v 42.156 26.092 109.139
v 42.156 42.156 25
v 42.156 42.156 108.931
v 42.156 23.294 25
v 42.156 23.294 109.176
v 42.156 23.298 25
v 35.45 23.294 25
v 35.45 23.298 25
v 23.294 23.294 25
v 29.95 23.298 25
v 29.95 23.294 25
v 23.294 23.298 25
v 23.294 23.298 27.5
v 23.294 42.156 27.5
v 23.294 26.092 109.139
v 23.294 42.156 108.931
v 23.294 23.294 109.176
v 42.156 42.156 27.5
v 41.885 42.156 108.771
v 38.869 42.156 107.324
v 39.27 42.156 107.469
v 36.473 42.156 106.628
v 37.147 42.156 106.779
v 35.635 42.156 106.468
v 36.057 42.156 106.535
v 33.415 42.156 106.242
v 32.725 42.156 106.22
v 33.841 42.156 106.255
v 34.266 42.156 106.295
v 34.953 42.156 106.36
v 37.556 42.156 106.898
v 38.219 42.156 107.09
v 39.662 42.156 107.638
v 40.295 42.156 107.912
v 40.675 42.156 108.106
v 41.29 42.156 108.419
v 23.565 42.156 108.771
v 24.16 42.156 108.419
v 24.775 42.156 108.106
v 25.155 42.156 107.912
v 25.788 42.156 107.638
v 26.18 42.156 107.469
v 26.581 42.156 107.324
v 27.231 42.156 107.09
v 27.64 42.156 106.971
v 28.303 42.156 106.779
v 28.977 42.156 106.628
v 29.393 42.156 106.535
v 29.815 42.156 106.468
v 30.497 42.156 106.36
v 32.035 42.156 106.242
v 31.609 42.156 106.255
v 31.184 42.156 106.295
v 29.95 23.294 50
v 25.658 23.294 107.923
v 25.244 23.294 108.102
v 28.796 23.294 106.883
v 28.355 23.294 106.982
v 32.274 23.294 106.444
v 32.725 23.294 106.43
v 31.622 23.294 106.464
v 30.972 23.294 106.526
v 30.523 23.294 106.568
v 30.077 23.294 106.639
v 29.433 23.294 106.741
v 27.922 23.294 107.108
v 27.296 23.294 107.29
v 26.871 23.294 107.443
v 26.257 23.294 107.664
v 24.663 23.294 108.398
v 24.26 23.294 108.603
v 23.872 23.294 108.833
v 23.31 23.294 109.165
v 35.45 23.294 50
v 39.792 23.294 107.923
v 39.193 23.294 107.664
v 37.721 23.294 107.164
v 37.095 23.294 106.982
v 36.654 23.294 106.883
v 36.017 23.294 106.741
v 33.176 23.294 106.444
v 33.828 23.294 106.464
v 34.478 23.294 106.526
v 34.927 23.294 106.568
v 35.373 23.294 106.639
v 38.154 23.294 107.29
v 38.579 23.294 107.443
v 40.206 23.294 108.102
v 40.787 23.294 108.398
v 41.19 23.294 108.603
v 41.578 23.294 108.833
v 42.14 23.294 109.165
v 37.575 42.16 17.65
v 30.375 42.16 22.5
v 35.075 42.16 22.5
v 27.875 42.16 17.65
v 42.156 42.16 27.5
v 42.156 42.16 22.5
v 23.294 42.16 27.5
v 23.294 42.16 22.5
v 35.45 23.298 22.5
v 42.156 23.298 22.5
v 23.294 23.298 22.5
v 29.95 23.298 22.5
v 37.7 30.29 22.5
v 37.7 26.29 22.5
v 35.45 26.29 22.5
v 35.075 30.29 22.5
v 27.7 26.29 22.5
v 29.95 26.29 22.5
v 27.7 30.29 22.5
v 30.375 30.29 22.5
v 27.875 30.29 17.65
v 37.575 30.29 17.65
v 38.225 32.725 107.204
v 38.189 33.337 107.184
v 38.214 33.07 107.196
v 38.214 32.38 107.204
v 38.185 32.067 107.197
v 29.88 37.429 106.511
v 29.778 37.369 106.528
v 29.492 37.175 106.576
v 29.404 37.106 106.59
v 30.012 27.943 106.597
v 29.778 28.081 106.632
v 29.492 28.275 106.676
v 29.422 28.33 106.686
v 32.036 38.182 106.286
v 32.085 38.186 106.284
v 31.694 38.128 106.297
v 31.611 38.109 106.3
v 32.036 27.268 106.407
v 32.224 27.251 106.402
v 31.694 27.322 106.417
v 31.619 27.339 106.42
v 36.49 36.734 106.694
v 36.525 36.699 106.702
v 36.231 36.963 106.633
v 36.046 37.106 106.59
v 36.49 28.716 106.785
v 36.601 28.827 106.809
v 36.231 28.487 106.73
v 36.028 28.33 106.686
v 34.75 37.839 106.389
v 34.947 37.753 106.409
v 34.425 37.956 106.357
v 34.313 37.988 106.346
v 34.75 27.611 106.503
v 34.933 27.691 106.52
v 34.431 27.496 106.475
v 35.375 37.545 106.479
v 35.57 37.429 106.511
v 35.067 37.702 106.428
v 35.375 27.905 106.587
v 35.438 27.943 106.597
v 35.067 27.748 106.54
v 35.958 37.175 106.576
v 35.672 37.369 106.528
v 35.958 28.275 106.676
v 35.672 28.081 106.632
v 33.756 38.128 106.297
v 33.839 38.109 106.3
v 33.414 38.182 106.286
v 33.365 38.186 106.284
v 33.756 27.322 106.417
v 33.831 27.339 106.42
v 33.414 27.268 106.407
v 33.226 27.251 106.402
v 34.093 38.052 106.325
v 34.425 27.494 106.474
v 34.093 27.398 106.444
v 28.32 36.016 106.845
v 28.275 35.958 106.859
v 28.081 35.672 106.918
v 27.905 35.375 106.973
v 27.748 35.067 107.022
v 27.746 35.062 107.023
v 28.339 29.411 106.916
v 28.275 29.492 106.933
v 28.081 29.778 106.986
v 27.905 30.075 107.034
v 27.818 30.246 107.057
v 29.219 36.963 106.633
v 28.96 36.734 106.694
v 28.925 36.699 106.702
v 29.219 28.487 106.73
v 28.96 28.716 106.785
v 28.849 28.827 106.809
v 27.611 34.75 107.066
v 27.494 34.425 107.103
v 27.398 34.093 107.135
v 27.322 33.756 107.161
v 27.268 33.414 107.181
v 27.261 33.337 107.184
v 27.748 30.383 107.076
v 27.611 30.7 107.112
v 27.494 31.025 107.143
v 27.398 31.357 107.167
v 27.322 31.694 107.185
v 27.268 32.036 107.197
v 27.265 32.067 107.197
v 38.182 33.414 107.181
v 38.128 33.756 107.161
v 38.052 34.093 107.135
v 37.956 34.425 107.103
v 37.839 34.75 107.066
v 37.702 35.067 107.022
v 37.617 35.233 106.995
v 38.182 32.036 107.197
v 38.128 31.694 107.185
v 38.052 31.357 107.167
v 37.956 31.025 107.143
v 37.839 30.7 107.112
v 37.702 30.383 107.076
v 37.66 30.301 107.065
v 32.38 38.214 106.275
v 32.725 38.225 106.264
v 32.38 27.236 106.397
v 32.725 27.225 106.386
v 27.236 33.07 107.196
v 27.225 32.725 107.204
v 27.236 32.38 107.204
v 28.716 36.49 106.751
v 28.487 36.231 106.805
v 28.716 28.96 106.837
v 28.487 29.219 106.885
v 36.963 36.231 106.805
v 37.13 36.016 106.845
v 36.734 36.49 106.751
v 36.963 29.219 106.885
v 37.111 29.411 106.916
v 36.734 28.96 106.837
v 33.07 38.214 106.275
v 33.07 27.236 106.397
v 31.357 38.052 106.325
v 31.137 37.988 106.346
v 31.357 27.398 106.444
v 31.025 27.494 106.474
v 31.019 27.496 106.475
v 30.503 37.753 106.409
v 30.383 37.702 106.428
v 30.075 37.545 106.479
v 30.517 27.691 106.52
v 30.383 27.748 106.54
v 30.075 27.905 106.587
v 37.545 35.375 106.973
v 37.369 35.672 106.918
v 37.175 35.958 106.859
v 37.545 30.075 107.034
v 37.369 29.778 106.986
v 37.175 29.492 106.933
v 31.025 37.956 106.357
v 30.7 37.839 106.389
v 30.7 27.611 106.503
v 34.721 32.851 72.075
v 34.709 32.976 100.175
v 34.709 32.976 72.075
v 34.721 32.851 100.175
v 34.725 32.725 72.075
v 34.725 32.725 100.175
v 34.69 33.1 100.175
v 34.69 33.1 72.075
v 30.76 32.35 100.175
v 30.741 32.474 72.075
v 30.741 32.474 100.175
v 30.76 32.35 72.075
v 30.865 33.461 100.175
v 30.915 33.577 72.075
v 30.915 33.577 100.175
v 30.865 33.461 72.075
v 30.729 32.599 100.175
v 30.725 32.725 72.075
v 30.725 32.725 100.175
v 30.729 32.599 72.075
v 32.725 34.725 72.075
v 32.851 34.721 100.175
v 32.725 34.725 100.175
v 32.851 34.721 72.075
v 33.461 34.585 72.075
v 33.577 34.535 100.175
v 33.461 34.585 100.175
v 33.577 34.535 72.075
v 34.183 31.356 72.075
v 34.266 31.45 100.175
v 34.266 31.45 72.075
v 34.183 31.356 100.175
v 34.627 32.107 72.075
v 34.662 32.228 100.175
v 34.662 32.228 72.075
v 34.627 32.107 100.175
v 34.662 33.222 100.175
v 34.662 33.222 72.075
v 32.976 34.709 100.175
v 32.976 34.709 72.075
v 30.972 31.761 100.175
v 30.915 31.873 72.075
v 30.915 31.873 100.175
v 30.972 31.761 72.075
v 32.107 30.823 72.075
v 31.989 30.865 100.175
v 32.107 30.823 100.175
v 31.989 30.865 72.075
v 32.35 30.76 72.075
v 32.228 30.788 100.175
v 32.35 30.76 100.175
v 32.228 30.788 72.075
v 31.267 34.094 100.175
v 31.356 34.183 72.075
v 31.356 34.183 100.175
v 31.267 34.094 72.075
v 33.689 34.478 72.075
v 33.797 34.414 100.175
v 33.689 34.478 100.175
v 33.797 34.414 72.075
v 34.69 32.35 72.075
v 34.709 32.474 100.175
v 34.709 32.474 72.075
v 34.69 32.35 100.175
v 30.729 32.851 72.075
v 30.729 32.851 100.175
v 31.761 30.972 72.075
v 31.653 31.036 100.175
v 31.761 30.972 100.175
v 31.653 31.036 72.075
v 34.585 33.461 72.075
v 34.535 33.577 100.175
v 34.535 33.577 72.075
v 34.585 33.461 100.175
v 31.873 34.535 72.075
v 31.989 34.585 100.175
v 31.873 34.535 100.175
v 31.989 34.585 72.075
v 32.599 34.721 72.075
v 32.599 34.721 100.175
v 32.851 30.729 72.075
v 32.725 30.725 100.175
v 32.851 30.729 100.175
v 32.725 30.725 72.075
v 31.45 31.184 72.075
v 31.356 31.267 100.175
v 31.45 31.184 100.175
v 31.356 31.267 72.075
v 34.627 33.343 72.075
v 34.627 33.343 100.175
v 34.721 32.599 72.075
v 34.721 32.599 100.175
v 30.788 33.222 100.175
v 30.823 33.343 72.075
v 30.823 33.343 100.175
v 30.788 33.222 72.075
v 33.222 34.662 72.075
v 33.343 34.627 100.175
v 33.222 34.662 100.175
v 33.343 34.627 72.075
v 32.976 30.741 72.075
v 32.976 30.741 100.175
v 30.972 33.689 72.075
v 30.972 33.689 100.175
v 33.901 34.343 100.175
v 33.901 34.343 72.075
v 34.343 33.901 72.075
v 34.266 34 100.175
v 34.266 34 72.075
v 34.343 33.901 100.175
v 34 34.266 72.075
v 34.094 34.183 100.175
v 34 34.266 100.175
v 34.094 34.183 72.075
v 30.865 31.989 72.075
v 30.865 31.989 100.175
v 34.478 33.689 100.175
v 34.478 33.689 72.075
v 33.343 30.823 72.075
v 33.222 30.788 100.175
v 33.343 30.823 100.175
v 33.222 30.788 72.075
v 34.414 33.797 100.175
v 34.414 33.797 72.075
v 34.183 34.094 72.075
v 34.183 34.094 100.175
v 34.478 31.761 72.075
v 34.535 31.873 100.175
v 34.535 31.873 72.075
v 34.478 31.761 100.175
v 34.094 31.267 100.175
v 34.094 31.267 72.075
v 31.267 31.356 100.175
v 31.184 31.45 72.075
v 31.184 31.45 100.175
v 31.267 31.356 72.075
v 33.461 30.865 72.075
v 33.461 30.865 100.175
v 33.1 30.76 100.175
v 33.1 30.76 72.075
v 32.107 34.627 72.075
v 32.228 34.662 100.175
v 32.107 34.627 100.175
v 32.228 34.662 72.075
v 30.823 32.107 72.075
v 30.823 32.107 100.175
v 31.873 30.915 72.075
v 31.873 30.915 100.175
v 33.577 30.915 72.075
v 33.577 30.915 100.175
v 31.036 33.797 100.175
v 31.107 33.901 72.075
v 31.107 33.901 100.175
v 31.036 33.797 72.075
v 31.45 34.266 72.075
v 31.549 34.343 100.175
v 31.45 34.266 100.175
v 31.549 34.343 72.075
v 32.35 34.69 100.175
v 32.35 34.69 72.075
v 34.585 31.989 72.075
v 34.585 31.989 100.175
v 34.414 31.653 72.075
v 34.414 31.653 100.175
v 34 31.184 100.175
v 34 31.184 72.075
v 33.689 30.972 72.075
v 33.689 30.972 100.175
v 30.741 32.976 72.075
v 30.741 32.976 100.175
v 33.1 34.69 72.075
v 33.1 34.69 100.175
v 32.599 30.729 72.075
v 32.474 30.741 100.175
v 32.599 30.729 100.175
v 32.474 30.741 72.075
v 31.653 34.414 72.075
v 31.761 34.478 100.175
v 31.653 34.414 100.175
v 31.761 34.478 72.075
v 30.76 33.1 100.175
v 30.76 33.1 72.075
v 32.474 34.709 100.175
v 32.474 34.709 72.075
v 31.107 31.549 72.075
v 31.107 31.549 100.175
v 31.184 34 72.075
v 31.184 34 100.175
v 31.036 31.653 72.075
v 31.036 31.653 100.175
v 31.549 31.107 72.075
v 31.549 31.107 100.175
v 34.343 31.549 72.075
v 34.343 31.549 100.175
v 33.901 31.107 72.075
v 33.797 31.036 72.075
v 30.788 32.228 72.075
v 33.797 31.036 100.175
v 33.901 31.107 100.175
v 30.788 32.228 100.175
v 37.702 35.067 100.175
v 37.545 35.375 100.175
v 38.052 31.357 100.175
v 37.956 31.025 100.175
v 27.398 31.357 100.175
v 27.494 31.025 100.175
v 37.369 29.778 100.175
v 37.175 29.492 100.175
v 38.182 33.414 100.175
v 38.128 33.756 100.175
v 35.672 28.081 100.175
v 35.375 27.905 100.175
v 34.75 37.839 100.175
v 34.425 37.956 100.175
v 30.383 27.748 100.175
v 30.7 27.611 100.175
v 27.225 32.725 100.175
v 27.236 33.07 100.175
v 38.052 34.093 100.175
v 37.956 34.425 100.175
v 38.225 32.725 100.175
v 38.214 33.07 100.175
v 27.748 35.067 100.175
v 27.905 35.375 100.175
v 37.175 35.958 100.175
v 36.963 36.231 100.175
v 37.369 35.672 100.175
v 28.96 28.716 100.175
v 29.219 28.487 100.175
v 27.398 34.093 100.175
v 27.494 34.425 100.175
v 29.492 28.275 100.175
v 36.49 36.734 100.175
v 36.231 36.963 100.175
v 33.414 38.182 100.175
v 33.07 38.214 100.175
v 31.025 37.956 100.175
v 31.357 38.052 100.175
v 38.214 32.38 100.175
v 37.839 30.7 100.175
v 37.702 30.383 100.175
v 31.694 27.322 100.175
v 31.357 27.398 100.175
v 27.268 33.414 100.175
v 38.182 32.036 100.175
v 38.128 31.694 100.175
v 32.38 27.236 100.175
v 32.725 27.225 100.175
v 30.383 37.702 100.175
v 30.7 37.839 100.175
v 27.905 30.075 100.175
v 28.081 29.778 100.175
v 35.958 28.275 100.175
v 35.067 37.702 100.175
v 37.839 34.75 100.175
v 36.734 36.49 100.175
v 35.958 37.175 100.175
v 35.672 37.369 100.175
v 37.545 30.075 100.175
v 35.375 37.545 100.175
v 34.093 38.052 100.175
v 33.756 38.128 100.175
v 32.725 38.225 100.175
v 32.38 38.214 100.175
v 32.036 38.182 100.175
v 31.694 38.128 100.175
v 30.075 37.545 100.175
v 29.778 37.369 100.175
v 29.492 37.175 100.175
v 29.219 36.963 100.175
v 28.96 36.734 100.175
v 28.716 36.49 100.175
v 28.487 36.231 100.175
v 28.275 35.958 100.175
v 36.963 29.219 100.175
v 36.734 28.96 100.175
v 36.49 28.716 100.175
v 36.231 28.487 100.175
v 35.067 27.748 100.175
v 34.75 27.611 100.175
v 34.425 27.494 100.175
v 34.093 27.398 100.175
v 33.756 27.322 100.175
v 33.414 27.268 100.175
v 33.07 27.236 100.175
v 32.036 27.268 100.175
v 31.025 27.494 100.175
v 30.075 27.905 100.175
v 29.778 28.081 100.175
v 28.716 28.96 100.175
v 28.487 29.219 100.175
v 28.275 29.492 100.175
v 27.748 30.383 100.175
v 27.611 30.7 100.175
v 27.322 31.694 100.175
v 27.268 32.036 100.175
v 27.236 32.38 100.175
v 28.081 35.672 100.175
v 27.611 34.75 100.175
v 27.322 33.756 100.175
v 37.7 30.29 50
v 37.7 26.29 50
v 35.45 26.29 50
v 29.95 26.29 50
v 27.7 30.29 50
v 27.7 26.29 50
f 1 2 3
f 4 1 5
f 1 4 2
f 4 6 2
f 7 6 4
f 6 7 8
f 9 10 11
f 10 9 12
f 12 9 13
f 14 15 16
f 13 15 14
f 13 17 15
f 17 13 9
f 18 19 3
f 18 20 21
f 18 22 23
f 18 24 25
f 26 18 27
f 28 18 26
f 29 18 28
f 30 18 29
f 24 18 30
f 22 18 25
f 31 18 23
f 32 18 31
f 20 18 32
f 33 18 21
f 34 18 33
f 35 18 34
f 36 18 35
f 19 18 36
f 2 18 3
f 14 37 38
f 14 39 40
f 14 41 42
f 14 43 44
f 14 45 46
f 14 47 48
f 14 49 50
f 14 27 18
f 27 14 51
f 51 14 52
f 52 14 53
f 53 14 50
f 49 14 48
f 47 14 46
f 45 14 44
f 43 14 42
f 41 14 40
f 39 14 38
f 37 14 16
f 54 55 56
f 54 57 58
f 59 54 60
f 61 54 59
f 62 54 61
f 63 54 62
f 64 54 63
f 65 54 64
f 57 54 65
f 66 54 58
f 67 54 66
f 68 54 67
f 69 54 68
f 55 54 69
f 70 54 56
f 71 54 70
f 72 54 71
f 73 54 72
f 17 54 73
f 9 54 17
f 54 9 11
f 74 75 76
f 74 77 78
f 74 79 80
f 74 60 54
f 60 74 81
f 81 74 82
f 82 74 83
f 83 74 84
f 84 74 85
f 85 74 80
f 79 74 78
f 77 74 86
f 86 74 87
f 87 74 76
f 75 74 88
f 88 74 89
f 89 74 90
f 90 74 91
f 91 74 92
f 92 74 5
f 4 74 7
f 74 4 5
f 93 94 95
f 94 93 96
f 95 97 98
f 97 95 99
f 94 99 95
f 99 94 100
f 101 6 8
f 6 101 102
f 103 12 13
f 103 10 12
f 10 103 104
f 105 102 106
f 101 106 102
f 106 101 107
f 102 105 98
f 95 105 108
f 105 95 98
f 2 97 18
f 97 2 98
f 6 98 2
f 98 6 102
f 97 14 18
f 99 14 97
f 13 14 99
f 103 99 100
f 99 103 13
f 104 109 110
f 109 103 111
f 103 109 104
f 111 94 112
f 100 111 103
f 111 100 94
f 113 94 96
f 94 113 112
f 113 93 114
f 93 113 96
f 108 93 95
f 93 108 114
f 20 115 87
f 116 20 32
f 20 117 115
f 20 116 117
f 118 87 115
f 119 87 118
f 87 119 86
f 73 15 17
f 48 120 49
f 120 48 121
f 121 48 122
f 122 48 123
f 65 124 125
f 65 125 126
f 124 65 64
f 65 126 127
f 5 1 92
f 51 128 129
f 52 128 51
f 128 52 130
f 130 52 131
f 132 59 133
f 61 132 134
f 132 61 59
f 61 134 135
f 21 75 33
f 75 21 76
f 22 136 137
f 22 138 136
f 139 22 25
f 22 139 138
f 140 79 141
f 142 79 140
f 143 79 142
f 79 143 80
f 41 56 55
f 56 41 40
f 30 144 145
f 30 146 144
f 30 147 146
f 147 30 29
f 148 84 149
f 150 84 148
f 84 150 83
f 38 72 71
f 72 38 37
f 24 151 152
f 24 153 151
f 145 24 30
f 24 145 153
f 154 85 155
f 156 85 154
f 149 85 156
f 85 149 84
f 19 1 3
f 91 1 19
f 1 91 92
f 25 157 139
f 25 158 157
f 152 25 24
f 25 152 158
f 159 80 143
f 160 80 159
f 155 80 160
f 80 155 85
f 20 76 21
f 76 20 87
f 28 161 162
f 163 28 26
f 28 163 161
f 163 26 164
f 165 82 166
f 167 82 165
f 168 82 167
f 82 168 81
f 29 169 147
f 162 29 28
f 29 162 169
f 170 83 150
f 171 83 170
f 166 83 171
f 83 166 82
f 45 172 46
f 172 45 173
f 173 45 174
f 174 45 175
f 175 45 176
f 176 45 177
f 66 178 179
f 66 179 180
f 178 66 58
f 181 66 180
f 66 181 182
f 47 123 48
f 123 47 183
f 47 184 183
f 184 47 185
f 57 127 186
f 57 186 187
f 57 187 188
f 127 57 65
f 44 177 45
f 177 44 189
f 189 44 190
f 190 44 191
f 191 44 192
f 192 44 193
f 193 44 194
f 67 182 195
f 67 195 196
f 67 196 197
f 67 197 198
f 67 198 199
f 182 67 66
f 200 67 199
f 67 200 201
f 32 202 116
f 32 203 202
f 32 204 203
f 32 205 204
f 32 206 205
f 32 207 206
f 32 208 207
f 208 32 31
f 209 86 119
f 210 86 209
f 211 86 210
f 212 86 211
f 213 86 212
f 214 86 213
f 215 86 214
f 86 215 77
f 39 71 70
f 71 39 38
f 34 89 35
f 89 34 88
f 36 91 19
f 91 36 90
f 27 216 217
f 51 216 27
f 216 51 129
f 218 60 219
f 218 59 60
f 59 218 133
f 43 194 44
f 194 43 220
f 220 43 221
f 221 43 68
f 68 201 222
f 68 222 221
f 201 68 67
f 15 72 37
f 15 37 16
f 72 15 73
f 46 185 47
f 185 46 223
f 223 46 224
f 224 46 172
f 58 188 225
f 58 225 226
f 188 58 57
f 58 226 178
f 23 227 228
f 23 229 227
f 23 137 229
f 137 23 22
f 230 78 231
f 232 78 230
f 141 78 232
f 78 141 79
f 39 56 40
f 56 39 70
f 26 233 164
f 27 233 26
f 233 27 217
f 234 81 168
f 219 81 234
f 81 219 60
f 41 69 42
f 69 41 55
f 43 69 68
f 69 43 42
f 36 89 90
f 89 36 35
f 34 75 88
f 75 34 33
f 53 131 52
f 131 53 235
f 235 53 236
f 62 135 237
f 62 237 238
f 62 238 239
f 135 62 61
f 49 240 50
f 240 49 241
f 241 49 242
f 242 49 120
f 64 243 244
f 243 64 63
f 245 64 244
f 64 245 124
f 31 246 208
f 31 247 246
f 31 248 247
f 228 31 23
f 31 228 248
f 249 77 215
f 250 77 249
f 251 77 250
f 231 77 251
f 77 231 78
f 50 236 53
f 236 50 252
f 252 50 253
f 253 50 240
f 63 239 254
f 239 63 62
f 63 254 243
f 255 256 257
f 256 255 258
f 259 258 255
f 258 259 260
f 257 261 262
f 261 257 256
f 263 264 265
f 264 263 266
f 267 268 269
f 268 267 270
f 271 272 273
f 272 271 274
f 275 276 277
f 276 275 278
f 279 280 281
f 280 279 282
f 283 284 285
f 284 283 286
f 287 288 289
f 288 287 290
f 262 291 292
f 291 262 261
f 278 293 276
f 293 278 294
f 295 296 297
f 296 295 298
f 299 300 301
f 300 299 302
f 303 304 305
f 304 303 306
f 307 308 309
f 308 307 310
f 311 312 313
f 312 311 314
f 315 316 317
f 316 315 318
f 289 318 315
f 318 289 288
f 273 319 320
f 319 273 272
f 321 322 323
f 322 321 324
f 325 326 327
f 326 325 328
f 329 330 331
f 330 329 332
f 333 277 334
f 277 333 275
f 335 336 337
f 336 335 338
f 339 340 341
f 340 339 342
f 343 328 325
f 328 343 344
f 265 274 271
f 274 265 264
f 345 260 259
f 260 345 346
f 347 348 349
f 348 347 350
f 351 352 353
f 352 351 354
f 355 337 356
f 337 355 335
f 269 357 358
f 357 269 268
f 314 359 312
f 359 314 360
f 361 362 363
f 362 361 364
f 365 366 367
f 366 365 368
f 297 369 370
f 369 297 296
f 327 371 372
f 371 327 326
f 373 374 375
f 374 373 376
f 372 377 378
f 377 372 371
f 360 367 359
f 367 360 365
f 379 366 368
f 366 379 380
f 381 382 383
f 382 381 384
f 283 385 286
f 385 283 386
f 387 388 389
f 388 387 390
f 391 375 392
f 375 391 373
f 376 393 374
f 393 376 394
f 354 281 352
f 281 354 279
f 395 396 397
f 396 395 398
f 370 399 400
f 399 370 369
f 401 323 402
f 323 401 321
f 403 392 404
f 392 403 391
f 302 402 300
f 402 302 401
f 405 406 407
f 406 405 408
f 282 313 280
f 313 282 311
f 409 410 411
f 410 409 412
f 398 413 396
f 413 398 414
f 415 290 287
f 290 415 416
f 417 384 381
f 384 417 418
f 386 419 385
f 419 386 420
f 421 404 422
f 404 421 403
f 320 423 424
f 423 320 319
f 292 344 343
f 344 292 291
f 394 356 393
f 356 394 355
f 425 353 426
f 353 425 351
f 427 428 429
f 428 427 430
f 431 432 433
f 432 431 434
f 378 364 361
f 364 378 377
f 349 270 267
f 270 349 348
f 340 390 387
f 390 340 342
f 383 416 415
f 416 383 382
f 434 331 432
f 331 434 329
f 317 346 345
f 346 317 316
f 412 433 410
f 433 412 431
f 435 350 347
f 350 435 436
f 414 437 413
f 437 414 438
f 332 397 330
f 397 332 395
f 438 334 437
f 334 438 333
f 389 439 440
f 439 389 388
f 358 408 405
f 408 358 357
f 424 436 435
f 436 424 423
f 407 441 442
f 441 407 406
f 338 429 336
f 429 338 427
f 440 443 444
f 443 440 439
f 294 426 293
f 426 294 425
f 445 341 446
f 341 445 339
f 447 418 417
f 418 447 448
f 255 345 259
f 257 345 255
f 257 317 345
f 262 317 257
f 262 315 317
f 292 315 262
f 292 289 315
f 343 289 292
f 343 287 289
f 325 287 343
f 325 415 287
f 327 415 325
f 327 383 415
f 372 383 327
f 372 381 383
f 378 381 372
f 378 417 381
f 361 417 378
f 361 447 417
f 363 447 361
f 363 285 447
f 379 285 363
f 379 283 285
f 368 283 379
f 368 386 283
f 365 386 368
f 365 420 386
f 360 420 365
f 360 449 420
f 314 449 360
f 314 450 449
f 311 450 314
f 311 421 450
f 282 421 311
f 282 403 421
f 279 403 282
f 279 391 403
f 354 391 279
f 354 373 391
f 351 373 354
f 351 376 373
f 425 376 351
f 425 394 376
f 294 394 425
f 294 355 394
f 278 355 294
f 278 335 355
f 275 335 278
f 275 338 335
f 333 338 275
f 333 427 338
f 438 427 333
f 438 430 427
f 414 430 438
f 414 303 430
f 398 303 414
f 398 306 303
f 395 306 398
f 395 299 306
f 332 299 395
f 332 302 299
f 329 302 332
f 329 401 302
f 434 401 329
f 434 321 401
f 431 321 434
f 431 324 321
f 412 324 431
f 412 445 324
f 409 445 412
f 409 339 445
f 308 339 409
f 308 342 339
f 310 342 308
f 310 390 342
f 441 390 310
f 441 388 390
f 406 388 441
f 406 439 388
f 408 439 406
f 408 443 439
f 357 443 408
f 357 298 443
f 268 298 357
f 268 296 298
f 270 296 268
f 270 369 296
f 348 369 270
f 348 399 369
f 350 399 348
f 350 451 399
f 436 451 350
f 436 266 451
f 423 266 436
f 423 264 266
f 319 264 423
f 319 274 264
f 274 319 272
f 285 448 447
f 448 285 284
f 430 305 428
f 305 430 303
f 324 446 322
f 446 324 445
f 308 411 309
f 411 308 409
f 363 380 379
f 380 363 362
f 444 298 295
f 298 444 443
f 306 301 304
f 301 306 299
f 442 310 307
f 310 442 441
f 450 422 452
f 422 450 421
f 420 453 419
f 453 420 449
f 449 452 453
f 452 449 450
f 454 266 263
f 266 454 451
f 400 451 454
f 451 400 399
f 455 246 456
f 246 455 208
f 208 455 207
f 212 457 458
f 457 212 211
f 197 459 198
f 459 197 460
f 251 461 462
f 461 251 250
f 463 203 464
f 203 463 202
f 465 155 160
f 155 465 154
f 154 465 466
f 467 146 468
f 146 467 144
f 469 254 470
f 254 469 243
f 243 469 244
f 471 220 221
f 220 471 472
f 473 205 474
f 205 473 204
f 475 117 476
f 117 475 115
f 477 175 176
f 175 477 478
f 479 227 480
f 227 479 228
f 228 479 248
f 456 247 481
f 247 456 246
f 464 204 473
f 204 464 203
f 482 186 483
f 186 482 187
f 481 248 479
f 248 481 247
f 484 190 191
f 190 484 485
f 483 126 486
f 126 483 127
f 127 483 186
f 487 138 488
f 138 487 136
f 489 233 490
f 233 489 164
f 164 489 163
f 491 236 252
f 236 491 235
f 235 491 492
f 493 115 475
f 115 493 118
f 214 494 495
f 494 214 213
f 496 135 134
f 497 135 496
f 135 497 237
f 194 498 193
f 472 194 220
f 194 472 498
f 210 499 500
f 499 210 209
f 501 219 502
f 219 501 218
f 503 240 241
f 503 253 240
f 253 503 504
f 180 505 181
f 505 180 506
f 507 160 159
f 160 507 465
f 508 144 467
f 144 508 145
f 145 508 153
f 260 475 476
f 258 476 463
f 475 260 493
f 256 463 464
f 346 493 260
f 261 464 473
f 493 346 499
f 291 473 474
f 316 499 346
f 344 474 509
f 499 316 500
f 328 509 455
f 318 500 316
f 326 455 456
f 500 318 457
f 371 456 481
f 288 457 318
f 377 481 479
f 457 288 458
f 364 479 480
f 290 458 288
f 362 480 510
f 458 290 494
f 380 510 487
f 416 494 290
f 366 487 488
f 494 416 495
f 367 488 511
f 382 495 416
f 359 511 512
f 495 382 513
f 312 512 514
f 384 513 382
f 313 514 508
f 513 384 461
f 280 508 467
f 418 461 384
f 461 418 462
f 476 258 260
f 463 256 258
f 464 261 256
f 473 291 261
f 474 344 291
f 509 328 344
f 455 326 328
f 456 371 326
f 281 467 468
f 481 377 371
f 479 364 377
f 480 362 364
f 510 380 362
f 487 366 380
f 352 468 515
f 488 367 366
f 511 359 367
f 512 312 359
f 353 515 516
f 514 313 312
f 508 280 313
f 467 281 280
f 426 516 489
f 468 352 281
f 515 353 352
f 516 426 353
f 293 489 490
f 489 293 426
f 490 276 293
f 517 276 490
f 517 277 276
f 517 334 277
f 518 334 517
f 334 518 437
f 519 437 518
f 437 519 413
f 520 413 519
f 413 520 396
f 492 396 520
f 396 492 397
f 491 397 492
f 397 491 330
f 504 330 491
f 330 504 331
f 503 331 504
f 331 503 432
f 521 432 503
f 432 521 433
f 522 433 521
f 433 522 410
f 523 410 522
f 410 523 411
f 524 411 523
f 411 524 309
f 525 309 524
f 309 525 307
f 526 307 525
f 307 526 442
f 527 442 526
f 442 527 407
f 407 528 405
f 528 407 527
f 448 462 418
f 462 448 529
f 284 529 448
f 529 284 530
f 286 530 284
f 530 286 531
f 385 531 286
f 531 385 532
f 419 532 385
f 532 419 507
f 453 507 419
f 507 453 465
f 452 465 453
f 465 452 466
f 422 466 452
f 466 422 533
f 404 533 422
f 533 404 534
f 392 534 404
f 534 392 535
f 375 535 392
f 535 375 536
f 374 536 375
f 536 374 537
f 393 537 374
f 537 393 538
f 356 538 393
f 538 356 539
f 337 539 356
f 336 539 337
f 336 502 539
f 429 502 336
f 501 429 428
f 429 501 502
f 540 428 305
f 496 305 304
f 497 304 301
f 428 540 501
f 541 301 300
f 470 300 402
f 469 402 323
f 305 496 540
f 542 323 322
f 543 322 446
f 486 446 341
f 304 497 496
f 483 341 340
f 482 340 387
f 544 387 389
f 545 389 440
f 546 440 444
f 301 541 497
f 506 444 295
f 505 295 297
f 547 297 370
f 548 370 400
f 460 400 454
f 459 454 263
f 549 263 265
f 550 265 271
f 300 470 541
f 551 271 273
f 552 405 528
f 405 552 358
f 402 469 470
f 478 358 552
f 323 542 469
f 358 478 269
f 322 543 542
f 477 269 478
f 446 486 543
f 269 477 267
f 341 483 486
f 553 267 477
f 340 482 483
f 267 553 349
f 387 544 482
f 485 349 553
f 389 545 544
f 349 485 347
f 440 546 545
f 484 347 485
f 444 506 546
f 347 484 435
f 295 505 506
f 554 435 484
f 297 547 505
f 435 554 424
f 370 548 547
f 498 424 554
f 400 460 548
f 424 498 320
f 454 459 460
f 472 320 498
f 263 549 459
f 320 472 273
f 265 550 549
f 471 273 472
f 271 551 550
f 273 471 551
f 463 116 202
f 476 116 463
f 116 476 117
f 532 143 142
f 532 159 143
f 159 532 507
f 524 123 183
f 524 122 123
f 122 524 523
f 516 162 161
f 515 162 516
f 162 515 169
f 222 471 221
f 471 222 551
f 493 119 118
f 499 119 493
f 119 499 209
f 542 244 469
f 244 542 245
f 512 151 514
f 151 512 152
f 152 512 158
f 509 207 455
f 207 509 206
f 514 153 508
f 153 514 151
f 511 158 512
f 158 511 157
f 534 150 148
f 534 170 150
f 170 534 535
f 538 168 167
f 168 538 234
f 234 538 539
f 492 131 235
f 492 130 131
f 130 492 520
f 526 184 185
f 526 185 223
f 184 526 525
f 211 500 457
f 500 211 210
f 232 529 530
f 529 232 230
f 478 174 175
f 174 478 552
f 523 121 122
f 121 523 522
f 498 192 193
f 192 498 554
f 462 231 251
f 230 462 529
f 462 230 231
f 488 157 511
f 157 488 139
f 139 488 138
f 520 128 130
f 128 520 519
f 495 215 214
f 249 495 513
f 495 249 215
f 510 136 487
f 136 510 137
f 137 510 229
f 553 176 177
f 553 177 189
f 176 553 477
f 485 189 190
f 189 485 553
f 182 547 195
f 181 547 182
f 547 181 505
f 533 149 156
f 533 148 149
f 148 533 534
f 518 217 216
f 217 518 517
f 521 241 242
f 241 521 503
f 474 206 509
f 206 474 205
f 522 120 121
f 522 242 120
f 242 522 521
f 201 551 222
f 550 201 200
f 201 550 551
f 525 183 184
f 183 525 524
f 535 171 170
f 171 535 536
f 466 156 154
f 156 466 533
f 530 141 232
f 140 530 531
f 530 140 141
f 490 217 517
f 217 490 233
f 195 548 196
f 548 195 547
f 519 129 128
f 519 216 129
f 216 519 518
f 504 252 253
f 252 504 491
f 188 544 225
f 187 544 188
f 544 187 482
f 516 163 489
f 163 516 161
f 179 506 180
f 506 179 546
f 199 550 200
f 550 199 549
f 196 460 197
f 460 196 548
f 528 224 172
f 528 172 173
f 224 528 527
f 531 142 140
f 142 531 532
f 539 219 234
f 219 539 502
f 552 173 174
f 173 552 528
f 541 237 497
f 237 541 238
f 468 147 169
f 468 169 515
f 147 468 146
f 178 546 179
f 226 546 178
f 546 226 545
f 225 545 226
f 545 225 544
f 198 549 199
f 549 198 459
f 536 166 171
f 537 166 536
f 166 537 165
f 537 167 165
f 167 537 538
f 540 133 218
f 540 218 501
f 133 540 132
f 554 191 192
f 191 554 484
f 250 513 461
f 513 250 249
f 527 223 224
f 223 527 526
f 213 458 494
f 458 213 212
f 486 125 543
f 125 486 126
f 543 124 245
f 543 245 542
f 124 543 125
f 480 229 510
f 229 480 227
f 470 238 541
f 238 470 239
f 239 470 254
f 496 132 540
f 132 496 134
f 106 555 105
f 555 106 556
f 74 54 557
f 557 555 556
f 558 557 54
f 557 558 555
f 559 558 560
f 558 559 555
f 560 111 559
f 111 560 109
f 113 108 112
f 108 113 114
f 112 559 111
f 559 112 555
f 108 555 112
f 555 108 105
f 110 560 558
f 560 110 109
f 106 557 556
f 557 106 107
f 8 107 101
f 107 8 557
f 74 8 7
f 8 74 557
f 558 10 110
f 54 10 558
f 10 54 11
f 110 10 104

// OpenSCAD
    //-----FUNÇÃO ARRAY 2D DE CILÍNDROS-----//

// Forneça o raio dos cilíndros: r
// Forneça entre os centros de cada cilíndro: d
// Forneça a altura dos cilíndros: h
// Forneça a quantidade de cilíndros em ambas as direções: nx, ny
// Forneça a resolução dos cilíndros: res
// Selecione a geometria:
//      Retangular: 1
//      Hexagonal: 2

module funcao_2d_array_cilindros(r,d,h,nx,ny,geo,res){
    if (d<2*r){
        text("Error!");
        translate([0,-15,0])text("Verify your specified dimensions.");
    }else{
        if(geo==1){
            for(j=[0:1:ny-1]){
                for(i=[0:1:nx-1]){
                    translate([i*d,j*d,0])cylinder(h,r,r,$fn=res);
                }
            }
        }else if(geo==2){
            for(j=[0:1:ny-1]){
                for(i=[0:1:nx-1]){
                    translate([i*d+(j%2)*d*cos(60),j*d*sin(60),0])cylinder(h,r,r,$fn=res);
                }
            }
        }else{
            text("Error!");
            translate([0,-15,0])text("Please, choose a valid geometry number.");
        }
        
    }    
}

// A quantidade de cilíndros é dada por nx*ny
// Para um geometria retangular, as dimensões são dadas por [(nx-1)*d+2*r,(ny-1)*d+2*r,h]
// Para um geometria hexagonal, as dimensões são dadas por [(nx-1+cos(60))*d+2*r,(ny-1)*d*sin(60)+2*r,h]

r=3;
d=20+5.15;
h=9;
nx=3;
ny=3;
geo=1;
res=100;

aux=2*d+5.15+10;
aux2=40.7-24.2+111.70-16.7-5.15/2;
aux3=11/2;
aux4=(37.55+4)/2 - (16.35+5.1/2-13.2);

cc=25;
ff=37.5;
gg=0.15;



difference(){
    translate([0,0,0]){
        translate([aux/2-(d*0.75)/2,aux/2-(d*0.75)/2,25])cube([d*0.75,d*0.75,110-25]);
        translate([7.725,42.16,-17.5])rotate([90,0,0])linear_extrude(d*0.75)polygon(points=[[35-(20-(d*0.75))/2,45],[35-(20-(d*0.75))/2,40],[27.5-gg,40],[30-gg,35+gg],[20+gg,35+gg],[22.5+gg,40],[15+(20-(d*0.75))/2,40],[15+(20-(d*0.75))/2,45]]);
    }
    #translate([aux/2,aux/2+45,aux2+aux4])rotate([90,0,0])cylinder(90,28.35/2+4,26.35/2+4,$fn=res);
    #translate([aux/2,aux/2,22+aux4+35])cylinder(35,2,2,$fn=res);
    #translate([aux/2,aux/2,85.1+aux4])cylinder(7.5,aux3,aux3,$fn=res);
    #translate([-17.3,48.29,0])translate([50-5,-25+3,0])cube([10,4,50]);
    #translate([-17.3,48.29,0])translate([50-5.5/2,-25,0])cube([5.5,4,50]);
    #translate([-17.3,48.29,0])translate([50-5.5/2-5,-25,0])cube([5.5+10,4,22]);
}
